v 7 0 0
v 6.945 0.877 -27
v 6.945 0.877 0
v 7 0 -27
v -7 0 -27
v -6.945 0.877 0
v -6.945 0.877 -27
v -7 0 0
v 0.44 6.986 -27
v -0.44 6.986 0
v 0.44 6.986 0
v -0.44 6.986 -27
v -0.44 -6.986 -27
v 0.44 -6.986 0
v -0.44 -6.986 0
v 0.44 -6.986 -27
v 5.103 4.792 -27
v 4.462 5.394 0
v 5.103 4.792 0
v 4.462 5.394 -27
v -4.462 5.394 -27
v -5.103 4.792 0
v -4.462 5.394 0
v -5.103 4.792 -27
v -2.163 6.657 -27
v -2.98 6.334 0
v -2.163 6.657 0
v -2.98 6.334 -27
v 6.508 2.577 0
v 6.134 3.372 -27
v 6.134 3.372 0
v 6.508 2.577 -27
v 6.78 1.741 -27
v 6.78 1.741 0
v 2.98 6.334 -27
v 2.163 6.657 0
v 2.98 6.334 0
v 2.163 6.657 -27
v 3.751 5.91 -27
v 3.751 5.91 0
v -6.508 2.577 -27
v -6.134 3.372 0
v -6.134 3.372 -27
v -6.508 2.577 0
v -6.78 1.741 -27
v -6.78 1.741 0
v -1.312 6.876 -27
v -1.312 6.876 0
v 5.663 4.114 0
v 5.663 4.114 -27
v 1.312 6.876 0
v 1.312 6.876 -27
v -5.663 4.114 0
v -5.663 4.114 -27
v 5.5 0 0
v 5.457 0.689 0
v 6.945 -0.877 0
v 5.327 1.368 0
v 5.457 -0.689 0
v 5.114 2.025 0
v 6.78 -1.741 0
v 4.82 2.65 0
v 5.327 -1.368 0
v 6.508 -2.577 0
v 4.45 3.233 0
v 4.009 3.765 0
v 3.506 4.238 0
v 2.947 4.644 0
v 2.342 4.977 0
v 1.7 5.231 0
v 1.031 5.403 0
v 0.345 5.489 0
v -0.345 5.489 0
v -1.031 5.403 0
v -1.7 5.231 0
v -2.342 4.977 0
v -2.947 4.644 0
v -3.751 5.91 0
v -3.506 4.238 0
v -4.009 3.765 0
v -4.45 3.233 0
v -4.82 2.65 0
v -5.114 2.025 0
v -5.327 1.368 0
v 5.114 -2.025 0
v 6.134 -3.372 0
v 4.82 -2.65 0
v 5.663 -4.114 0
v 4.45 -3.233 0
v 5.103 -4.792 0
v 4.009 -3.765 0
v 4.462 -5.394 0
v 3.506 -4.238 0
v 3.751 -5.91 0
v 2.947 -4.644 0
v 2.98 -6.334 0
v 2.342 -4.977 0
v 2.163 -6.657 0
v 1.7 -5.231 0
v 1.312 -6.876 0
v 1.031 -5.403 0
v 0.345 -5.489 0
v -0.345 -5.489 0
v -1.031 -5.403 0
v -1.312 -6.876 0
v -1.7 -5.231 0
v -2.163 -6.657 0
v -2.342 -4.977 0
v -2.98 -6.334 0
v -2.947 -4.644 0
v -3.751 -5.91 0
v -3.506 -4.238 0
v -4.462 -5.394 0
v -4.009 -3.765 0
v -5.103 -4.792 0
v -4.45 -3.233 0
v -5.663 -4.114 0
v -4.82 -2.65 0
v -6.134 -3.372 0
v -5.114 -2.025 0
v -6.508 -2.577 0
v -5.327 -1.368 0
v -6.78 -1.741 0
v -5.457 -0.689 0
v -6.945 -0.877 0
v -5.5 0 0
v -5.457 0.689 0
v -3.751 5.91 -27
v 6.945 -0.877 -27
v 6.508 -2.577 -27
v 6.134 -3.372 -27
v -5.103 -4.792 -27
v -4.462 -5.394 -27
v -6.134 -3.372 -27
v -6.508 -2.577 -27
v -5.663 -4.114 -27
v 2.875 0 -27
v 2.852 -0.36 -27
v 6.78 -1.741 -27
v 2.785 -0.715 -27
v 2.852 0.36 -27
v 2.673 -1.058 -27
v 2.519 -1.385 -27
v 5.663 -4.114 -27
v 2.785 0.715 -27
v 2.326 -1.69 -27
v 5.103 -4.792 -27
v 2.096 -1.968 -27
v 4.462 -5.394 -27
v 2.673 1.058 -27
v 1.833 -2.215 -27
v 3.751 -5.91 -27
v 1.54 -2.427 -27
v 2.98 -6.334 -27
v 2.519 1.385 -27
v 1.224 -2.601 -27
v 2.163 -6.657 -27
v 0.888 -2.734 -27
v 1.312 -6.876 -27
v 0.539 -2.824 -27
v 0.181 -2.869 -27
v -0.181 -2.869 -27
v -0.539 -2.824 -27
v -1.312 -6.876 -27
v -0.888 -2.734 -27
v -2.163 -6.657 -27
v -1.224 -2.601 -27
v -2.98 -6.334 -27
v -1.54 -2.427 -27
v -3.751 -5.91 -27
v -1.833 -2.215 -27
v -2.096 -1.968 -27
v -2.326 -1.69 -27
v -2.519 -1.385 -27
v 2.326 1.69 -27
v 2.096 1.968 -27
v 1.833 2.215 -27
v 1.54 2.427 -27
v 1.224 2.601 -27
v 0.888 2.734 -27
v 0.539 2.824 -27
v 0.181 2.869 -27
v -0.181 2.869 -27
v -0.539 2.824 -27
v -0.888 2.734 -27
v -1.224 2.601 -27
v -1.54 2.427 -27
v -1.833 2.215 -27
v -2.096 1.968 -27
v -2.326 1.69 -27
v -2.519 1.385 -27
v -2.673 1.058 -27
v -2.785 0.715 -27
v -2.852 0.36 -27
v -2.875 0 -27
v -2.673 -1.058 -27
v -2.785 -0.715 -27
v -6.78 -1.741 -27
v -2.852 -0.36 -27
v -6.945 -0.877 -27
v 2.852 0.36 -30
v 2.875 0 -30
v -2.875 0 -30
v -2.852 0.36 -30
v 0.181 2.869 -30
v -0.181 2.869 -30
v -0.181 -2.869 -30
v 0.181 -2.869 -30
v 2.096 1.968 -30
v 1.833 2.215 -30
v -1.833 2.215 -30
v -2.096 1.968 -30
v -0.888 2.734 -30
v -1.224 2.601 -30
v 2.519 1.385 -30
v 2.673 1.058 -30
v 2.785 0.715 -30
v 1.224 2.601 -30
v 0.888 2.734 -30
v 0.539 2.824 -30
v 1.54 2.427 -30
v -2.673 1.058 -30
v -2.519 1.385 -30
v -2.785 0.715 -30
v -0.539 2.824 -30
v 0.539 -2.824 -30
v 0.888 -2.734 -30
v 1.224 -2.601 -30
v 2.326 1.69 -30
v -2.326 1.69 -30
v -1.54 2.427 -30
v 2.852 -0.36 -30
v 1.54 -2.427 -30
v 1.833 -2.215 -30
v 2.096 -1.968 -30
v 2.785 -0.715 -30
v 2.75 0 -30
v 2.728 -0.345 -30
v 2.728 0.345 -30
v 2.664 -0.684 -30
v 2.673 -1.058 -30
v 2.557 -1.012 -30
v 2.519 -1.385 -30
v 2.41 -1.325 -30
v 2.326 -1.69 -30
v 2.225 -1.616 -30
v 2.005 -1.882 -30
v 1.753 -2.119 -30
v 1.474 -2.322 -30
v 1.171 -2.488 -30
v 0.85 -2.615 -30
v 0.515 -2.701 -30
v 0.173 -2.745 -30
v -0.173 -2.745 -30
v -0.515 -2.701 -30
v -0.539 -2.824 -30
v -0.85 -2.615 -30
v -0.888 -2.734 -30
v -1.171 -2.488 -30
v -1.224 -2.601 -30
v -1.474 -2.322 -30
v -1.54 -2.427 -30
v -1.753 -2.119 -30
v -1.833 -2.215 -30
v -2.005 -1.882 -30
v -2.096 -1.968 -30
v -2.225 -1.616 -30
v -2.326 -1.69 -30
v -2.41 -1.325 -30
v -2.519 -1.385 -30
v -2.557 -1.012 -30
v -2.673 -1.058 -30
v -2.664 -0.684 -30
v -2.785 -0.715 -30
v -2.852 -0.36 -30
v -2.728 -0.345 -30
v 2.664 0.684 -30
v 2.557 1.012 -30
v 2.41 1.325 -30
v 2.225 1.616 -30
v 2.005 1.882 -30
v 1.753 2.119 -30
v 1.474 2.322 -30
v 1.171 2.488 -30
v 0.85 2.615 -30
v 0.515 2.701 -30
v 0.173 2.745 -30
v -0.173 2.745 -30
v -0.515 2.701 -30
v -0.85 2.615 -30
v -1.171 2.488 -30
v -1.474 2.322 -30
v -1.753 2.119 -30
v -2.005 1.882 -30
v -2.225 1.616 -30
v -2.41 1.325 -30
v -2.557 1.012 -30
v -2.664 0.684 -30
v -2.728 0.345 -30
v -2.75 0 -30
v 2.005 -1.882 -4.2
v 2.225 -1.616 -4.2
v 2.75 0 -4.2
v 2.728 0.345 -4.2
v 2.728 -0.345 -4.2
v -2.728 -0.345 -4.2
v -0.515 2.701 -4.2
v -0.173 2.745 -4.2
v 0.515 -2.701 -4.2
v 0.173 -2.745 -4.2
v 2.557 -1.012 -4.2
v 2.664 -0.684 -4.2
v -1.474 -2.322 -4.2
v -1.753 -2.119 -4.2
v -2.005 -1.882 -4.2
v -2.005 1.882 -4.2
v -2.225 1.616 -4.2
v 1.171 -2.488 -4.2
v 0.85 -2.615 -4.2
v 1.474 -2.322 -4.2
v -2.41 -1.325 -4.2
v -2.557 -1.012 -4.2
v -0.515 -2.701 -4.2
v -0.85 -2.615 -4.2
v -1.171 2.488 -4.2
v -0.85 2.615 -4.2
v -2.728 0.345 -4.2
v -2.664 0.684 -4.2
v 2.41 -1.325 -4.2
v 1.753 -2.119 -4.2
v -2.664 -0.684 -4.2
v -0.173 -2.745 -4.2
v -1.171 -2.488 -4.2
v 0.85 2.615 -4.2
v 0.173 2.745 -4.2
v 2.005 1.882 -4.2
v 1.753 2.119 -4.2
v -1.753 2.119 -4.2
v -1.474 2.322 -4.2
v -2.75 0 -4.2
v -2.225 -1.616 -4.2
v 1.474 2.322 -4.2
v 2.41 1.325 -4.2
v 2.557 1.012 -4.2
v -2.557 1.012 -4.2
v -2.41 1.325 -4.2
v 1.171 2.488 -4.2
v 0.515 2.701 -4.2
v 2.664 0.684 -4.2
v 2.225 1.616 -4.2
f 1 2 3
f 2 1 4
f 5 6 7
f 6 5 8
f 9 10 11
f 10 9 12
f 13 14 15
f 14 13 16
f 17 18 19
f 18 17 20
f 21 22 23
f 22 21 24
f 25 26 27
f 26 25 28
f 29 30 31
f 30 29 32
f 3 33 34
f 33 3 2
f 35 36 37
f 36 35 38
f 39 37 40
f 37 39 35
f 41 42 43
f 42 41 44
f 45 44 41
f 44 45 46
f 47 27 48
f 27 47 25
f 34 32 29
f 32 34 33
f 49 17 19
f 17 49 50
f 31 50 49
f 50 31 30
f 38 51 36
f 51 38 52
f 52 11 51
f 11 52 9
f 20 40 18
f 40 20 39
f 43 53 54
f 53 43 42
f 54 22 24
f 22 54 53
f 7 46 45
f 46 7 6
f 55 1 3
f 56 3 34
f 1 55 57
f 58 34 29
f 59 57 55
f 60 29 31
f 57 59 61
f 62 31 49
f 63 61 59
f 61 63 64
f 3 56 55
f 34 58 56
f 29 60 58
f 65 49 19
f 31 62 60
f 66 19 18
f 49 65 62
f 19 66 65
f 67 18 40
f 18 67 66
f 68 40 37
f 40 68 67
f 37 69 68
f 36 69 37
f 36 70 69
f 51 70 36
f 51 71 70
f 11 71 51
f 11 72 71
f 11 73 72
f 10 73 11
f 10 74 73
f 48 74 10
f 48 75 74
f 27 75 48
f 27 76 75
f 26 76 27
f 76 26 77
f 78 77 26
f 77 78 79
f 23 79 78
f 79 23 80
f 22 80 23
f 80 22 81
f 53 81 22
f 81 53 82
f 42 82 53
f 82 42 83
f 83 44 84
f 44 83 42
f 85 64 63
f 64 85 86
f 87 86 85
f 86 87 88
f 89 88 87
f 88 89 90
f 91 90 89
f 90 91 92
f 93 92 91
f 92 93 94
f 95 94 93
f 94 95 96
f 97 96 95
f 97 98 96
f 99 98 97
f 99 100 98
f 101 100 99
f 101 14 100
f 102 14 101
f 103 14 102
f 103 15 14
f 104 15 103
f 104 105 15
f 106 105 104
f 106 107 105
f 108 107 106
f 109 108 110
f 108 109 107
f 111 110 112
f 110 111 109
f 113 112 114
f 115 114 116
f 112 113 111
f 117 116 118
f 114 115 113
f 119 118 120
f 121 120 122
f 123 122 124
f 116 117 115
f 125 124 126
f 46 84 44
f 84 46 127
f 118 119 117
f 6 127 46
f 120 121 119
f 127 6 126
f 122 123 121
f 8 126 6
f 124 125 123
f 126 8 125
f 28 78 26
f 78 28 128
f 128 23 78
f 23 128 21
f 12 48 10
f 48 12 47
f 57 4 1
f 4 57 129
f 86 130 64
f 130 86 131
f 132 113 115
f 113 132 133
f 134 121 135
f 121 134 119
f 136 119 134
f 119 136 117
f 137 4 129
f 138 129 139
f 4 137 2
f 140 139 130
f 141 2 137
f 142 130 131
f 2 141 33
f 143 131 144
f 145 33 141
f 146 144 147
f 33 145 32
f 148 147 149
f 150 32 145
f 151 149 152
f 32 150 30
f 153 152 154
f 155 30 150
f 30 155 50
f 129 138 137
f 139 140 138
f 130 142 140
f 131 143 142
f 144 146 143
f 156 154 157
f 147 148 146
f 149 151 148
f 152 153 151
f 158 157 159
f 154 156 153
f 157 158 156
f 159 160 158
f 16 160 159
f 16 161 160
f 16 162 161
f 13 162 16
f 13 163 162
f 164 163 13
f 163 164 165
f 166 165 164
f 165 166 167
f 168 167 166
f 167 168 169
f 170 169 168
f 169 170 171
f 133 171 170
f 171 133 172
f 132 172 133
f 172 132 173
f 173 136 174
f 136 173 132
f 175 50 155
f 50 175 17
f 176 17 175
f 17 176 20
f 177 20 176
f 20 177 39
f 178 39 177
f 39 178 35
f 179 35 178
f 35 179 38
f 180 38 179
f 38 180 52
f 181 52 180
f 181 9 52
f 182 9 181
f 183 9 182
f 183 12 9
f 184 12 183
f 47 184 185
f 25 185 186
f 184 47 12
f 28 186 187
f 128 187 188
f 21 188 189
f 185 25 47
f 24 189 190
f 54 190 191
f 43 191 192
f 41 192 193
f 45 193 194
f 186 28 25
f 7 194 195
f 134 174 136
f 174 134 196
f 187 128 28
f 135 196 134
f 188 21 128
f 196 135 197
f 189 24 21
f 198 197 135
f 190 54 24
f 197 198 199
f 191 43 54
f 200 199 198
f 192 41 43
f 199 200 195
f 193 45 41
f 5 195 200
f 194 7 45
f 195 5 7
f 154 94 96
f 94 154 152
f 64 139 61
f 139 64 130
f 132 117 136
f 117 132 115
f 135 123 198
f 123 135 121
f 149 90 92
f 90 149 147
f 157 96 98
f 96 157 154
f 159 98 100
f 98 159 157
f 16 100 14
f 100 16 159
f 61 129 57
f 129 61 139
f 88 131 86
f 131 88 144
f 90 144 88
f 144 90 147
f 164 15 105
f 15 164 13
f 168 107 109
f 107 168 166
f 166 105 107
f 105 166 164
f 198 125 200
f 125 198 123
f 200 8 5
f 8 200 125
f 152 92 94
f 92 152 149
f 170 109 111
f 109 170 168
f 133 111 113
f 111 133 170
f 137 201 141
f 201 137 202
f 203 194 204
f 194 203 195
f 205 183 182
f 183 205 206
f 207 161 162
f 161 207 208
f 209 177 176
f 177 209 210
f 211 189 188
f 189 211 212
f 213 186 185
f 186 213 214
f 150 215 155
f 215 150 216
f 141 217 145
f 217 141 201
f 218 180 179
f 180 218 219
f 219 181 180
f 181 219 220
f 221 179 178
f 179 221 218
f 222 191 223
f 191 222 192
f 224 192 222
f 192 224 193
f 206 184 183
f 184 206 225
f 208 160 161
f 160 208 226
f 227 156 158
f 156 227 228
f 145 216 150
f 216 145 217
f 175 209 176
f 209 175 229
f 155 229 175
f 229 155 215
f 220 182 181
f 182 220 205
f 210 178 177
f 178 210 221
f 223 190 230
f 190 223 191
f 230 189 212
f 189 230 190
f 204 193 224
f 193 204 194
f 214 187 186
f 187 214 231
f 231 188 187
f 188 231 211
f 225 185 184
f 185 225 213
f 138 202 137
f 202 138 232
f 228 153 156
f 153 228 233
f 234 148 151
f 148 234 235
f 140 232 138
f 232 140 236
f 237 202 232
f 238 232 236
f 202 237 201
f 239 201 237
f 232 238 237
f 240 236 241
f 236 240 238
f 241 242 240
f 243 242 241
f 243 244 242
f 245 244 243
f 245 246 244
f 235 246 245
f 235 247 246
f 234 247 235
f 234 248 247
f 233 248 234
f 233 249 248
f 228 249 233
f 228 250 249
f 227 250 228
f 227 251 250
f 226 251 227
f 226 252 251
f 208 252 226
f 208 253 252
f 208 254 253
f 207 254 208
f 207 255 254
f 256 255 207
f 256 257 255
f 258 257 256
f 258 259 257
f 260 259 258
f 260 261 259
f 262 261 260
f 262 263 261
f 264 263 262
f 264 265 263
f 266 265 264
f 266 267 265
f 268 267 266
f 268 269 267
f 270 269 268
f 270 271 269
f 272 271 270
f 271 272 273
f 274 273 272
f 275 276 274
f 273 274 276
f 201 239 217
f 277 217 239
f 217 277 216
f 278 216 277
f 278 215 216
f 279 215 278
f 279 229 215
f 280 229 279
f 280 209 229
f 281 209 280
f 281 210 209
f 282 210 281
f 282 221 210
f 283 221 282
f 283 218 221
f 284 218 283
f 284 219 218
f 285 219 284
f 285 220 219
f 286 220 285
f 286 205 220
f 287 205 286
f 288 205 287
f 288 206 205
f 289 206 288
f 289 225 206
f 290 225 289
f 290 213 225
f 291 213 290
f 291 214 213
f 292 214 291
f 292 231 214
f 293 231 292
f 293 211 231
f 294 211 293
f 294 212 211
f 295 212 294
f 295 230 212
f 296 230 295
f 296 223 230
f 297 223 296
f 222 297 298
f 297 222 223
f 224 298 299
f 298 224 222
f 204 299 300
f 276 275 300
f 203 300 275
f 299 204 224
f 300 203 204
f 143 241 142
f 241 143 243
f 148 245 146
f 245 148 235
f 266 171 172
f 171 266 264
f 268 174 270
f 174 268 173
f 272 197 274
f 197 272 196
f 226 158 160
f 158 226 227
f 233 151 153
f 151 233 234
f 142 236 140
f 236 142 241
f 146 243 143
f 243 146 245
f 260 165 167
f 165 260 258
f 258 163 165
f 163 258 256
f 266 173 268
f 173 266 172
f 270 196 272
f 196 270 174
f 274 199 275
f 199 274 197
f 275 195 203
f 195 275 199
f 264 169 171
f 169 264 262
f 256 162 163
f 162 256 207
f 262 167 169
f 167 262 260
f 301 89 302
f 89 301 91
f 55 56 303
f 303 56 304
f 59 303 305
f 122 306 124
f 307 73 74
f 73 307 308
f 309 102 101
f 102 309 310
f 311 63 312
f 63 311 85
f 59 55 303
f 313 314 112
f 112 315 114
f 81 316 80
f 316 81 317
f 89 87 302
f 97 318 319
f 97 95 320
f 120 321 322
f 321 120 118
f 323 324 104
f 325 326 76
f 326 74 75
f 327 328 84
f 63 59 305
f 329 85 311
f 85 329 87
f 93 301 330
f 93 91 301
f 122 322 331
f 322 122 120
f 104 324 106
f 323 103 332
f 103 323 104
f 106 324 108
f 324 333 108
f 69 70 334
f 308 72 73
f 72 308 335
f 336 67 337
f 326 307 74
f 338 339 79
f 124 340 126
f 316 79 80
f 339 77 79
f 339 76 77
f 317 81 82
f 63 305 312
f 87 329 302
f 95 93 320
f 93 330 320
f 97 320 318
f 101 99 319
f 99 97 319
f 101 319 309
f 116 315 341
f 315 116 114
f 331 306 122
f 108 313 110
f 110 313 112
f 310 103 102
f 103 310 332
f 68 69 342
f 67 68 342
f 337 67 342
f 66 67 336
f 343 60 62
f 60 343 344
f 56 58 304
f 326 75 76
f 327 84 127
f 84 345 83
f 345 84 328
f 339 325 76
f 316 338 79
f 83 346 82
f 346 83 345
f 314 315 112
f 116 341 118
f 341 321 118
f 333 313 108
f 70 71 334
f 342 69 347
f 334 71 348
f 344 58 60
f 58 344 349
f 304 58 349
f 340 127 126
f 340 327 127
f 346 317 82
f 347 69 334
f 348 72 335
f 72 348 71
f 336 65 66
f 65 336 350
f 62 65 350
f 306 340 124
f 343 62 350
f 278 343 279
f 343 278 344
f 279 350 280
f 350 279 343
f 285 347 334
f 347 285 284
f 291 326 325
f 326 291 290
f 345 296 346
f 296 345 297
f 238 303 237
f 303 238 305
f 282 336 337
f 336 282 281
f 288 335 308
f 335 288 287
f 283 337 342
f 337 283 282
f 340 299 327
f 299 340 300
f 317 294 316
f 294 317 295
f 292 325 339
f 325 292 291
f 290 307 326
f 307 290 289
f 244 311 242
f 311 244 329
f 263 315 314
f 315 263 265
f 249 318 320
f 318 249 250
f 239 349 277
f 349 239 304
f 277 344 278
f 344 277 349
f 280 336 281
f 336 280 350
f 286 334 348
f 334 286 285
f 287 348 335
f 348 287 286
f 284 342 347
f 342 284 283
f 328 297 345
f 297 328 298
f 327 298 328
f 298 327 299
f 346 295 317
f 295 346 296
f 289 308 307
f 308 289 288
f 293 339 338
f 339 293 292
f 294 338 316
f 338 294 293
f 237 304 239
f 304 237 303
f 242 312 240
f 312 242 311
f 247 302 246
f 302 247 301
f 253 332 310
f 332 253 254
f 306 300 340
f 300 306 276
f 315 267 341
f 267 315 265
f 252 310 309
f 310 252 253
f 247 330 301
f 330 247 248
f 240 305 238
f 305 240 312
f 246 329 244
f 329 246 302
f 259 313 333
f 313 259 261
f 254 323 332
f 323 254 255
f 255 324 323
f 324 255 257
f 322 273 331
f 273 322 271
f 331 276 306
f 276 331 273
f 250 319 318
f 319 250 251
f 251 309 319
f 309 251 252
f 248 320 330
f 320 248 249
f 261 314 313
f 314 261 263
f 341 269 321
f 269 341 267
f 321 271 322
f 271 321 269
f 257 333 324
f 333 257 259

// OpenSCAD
$fn = 50;


difference() {
	union() {
		translate(v = [0, 0, -27.0000000000]) {
			cylinder(h = 27, r = 7.0000000000);
		}
		#translate(v = [0, 0, -30.0000000000]) {
			cylinder(h = 30, r = 2.8750000000);
		}
	}
	union() {
		translate(v = [0, 0, 0]) {
			rotate(a = [0, 0, 0]) {
				difference() {
					union() {
						translate(v = [0, 0, -30.0000000000]) {
							cylinder(h = 30, r = 2.2500000000);
						}
						translate(v = [0, 0, -4.2000000000]) {
							cylinder(h = 4.2000000000, r1 = 2.7500000000, r2 = 5.5000000000);
						}
						translate(v = [0, 0, -30.0000000000]) {
							cylinder(h = 30, r = 2.7500000000);
						}
						translate(v = [0, 0, -30.0000000000]) {
							cylinder(h = 30, r = 2.2500000000);
						}
					}
					union();
				}
			}
		}
	}
}
